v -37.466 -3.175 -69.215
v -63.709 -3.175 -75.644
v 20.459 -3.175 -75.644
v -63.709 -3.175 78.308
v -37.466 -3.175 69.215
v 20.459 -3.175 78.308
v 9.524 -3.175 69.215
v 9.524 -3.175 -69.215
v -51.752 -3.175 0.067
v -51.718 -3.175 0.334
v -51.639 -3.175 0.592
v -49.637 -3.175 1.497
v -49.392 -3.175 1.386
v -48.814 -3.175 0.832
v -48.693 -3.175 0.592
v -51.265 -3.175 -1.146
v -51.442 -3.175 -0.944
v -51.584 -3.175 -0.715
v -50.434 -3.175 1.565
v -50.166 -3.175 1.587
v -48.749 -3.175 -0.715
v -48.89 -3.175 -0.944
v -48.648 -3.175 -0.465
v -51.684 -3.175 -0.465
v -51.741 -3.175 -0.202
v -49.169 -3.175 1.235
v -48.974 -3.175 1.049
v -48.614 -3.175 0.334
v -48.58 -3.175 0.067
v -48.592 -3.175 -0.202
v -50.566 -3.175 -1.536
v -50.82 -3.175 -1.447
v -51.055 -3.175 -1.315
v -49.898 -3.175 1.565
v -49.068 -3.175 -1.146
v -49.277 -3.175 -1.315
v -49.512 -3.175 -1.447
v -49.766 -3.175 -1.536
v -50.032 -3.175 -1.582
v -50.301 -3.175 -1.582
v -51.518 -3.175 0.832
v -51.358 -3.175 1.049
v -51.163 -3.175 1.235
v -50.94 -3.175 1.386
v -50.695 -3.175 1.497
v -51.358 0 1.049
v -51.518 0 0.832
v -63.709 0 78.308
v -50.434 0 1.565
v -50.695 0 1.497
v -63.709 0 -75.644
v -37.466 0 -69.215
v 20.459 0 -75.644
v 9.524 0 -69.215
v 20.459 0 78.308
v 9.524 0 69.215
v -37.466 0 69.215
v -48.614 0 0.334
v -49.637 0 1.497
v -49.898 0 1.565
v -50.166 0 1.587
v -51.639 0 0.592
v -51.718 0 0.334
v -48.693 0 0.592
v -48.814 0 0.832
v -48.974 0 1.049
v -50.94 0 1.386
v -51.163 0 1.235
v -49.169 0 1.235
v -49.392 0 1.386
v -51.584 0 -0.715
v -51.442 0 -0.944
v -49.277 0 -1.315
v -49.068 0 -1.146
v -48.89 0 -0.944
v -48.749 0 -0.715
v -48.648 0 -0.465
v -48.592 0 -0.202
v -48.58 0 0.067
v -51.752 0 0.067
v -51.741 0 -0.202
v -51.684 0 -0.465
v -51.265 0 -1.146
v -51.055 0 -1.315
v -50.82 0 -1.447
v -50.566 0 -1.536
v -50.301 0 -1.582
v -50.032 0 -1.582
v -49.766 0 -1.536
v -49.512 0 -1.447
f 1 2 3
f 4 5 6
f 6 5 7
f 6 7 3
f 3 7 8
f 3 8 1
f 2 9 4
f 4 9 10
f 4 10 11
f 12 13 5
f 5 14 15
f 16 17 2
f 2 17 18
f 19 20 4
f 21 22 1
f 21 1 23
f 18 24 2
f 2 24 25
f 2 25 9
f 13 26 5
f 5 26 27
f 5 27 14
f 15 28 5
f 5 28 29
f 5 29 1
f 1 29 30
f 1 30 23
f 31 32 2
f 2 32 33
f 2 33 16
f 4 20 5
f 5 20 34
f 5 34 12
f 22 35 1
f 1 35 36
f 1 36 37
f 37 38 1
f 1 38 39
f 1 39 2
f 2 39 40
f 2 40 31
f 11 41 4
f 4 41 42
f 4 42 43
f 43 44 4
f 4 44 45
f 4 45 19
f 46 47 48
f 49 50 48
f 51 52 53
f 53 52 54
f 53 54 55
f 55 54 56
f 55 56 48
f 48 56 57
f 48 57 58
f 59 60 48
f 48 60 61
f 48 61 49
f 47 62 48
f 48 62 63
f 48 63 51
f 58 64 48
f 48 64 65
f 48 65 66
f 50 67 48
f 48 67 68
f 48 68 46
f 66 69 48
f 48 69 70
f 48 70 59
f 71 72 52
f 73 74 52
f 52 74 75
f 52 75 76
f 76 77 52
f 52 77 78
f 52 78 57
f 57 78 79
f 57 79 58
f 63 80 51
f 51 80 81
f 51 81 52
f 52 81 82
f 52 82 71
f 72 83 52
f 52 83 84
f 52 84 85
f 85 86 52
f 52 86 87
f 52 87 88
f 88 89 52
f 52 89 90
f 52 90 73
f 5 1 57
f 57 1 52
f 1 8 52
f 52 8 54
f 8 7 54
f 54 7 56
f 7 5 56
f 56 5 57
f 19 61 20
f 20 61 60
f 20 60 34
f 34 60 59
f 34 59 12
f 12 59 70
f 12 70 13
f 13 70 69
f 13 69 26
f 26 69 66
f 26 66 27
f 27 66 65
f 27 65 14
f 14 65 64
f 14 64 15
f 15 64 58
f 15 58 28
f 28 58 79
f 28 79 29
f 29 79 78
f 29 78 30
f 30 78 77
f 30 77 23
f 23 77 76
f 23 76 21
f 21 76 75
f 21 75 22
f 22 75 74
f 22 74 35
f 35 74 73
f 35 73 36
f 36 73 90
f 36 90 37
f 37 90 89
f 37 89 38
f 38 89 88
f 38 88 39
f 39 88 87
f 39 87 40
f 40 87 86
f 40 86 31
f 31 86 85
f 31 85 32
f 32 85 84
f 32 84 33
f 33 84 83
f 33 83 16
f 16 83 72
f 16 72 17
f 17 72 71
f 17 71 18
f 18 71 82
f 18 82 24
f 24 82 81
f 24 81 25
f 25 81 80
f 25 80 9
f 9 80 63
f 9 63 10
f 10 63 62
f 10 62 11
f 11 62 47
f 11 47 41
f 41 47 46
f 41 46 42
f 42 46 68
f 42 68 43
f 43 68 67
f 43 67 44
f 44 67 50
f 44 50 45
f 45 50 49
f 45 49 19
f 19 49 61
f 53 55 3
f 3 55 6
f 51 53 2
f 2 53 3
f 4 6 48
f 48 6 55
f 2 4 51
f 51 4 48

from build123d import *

# Parameters (mm, degrees)
BOSS_EXTRUDE1_DEPTH = 3.175
SKETCH2_R           = 1.5875
SKETCH2_W           = 80.264
SKETCH2_H           = 12.954
CUT_EXTRUDE1_DEPTH  = 223.985606318
SKETCH7_R           = 1.5875
SKETCH7_W           = 46.99
SKETCH7_H           = 138.43
CUT_EXTRUDE4_DEPTH  = 223.985606318
CUT_EXTRUDE5_DEPTH  = 223.985606318
CUT_EXTRUDE6_DEPTH  = 221.482742149
CUT_EXTRUDE7_DEPTH  = 221.482742149


with BuildPart() as part:
    # Sketch1 → Boss-Extrude1 (new body)
    with BuildSketch(Plane(origin=(0, 0, 0), x_dir=(1, 0, 0), z_dir=(0, 1, 0))):
        with BuildLine():
            Line((-80, 112.5), (100, 112.5))
            Line((100, 112.5), (100, -112.5))
            Line((100, -112.5), (-80, -112.5))
            ThreePointArc((-80, -112.5), (-192.5, 0), (-80, 112.5))
        make_face()
    extrude(amount=-BOSS_EXTRUDE1_DEPTH)

    # Sketch2 → Cut-Extrude1 (cut, through all)
    with BuildSketch(Plane(origin=(0, 0, 0), x_dir=(1, 0, 0), z_dir=(0, 1, 0))):
        with Locations(Location((36.144045702, -74.2188, 0), (0, 0, 270))):
            Circle(SKETCH2_R)
        with Locations(Location((36.144045702, -67.8688, 0), (0, 0, 270))):
            Circle(SKETCH2_R)
        with Locations(Location((36.144045702, -61.5188, 0), (0, 0, 270))):
            Circle(SKETCH2_R)
        with Locations(Location((36.144045702, -55.1688, 0), (0, 0, 270))):
            Circle(SKETCH2_R)
        with Locations(Location((36.144045702, -48.8188, 0), (0, 0, 270))):
            Circle(SKETCH2_R)
        with Locations(Location((36.144045702, -42.4688, 0), (0, 0, 270))):
            Circle(SKETCH2_R)
        with Locations(Location((36.144045702, -36.1188, 0), (0, 0, 270))):
            Circle(SKETCH2_R)
        with Locations(Location((67.894045702, -74.2188, 0), (0, 0, 270))):
            Circle(SKETCH2_R)
        with Locations(Location((67.894045702, -67.8688, 0), (0, 0, 270))):
            Circle(SKETCH2_R)
        with Locations(Location((67.894045702, -61.5188, 0), (0, 0, 270))):
            Circle(SKETCH2_R)
        with Locations(Location((67.894045702, -55.1688, 0), (0, 0, 270))):
            Circle(SKETCH2_R)
        with Locations(Location((67.894045702, -48.8188, 0), (0, 0, 270))):
            Circle(SKETCH2_R)
        with Locations(Location((67.894045702, -42.4688, 0), (0, 0, 270))):
            Circle(SKETCH2_R)
        with Locations(Location((67.894045702, -36.1188, 0), (0, 0, 270))):
            Circle(SKETCH2_R)
        with Locations(Location((36.144045702, 74.2188, 0), (0, 0, 270))):
            Circle(SKETCH2_R)
        with Locations(Location((36.144045702, 67.8688, 0), (0, 0, 270))):
            Circle(SKETCH2_R)
        with Locations(Location((36.144045702, 61.5188, 0), (0, 0, 270))):
            Circle(SKETCH2_R)
        with Locations(Location((36.144045702, 55.1688, 0), (0, 0, 270))):
            Circle(SKETCH2_R)
        with Locations(Location((36.144045702, 48.8188, 0), (0, 0, 270))):
            Circle(SKETCH2_R)
        with Locations(Location((36.144045702, 42.4688, 0), (0, 0, 270))):
            Circle(SKETCH2_R)
        with Locations(Location((36.144045702, 36.1188, 0), (0, 0, 270))):
            Circle(SKETCH2_R)
        with Locations(Location((67.894045702, 74.2188, 0), (0, 0, 270))):
            Circle(SKETCH2_R)
        with Locations(Location((67.894045702, 67.8688, 0), (0, 0, 270))):
            Circle(SKETCH2_R)
        with Locations(Location((67.894045702, 61.5188, 0), (0, 0, 270))):
            Circle(SKETCH2_R)
        with Locations(Location((67.894045702, 55.1688, 0), (0, 0, 270))):
            Circle(SKETCH2_R)
        with Locations(Location((67.894045702, 48.8188, 0), (0, 0, 270))):
            Circle(SKETCH2_R)
        with Locations(Location((67.894045702, 42.4688, 0), (0, 0, 270))):
            Circle(SKETCH2_R)
        with Locations(Location((67.894045702, 36.1188, 0), (0, 0, 270))):
            Circle(SKETCH2_R)
        with Locations((52.019045702, -96.4438)):
            Rectangle(SKETCH2_W, SKETCH2_H)
        with Locations((52.019045702, 96.4438)):
            Rectangle(SKETCH2_W, SKETCH2_H)
    extrude(amount=-CUT_EXTRUDE1_DEPTH, mode=Mode.SUBTRACT)

    # Sketch7 → Cut-Extrude4 (cut, through all)
    with BuildSketch(Plane(origin=(0, 0, 0), x_dir=(1, 0, 0), z_dir=(0, 1, 0))):
        with Locations(Location((-50.166143469, 0, 0), (0, 0, 270))):
            Circle(SKETCH7_R)
        with Locations(Location((25.582761582, 0, 0), (0, 0, 270))):
            Circle(SKETCH7_R)
        with Locations(Location((87.462148806, 0, 0), (0, 0, 270))):
            Circle(SKETCH7_R)
        with Locations((-13.971143469, 0)):
            Rectangle(SKETCH7_W, SKETCH7_H)
    extrude(amount=-CUT_EXTRUDE4_DEPTH, mode=Mode.SUBTRACT)

    # Sketch8 → Cut-Extrude5 (cut, through all)
    with BuildSketch(Plane(origin=(0, 0, 0), x_dir=(1, 0, 0), z_dir=(0, 1, 0))):
        with BuildLine():
            Line((-167.0966, 25.4), (-229.776686608, 25.4))
            Line((-229.776686608, 25.4), (-229.776686608, -25.4))
            Line((-229.776686608, -25.4), (-167.0966, -25.4))
            ThreePointArc((-167.0966, -25.4), (-141.6966, 0), (-167.0966, 25.4))
        make_face()
    extrude(amount=-CUT_EXTRUDE5_DEPTH, mode=Mode.SUBTRACT)

    # Sketch9 → Cut-Extrude6 (cut, through all)
    with BuildSketch(Plane(origin=(0, 0, 0), x_dir=(1, 0, 0), z_dir=(0, 1, 0))):
        Polygon((0, 120.924498436), (0, 78.840642152), (20.45905334, 78.840642152), (20.45905334, -78.840642152), (0, -78.840642152), (0, -122.522619561), (114.748199697, -122.522619561), (114.748199697, 120.924498436), align=None)
    extrude(amount=-CUT_EXTRUDE6_DEPTH, mode=Mode.SUBTRACT)

    # Sketch10 → Cut-Extrude7 (cut, through all)
    with BuildSketch(Plane(origin=(0, 0, 0), x_dir=(1, 0, 0), z_dir=(0, 1, 0))):
        Polygon((24.720709672, 75.644399903), (-63.708659228, 75.644399903), (-63.708659228, -78.30793511), (24.720709672, -78.30793511), (24.720709672, -86.831247776), (24.720709672, -123.055326602), (-234.174912529, -128.382397018), (-239.283531036, 119.896462399), (24.720709672, 119.896462399), align=None)
    extrude(amount=-CUT_EXTRUDE7_DEPTH, mode=Mode.SUBTRACT)


solid = part.part
